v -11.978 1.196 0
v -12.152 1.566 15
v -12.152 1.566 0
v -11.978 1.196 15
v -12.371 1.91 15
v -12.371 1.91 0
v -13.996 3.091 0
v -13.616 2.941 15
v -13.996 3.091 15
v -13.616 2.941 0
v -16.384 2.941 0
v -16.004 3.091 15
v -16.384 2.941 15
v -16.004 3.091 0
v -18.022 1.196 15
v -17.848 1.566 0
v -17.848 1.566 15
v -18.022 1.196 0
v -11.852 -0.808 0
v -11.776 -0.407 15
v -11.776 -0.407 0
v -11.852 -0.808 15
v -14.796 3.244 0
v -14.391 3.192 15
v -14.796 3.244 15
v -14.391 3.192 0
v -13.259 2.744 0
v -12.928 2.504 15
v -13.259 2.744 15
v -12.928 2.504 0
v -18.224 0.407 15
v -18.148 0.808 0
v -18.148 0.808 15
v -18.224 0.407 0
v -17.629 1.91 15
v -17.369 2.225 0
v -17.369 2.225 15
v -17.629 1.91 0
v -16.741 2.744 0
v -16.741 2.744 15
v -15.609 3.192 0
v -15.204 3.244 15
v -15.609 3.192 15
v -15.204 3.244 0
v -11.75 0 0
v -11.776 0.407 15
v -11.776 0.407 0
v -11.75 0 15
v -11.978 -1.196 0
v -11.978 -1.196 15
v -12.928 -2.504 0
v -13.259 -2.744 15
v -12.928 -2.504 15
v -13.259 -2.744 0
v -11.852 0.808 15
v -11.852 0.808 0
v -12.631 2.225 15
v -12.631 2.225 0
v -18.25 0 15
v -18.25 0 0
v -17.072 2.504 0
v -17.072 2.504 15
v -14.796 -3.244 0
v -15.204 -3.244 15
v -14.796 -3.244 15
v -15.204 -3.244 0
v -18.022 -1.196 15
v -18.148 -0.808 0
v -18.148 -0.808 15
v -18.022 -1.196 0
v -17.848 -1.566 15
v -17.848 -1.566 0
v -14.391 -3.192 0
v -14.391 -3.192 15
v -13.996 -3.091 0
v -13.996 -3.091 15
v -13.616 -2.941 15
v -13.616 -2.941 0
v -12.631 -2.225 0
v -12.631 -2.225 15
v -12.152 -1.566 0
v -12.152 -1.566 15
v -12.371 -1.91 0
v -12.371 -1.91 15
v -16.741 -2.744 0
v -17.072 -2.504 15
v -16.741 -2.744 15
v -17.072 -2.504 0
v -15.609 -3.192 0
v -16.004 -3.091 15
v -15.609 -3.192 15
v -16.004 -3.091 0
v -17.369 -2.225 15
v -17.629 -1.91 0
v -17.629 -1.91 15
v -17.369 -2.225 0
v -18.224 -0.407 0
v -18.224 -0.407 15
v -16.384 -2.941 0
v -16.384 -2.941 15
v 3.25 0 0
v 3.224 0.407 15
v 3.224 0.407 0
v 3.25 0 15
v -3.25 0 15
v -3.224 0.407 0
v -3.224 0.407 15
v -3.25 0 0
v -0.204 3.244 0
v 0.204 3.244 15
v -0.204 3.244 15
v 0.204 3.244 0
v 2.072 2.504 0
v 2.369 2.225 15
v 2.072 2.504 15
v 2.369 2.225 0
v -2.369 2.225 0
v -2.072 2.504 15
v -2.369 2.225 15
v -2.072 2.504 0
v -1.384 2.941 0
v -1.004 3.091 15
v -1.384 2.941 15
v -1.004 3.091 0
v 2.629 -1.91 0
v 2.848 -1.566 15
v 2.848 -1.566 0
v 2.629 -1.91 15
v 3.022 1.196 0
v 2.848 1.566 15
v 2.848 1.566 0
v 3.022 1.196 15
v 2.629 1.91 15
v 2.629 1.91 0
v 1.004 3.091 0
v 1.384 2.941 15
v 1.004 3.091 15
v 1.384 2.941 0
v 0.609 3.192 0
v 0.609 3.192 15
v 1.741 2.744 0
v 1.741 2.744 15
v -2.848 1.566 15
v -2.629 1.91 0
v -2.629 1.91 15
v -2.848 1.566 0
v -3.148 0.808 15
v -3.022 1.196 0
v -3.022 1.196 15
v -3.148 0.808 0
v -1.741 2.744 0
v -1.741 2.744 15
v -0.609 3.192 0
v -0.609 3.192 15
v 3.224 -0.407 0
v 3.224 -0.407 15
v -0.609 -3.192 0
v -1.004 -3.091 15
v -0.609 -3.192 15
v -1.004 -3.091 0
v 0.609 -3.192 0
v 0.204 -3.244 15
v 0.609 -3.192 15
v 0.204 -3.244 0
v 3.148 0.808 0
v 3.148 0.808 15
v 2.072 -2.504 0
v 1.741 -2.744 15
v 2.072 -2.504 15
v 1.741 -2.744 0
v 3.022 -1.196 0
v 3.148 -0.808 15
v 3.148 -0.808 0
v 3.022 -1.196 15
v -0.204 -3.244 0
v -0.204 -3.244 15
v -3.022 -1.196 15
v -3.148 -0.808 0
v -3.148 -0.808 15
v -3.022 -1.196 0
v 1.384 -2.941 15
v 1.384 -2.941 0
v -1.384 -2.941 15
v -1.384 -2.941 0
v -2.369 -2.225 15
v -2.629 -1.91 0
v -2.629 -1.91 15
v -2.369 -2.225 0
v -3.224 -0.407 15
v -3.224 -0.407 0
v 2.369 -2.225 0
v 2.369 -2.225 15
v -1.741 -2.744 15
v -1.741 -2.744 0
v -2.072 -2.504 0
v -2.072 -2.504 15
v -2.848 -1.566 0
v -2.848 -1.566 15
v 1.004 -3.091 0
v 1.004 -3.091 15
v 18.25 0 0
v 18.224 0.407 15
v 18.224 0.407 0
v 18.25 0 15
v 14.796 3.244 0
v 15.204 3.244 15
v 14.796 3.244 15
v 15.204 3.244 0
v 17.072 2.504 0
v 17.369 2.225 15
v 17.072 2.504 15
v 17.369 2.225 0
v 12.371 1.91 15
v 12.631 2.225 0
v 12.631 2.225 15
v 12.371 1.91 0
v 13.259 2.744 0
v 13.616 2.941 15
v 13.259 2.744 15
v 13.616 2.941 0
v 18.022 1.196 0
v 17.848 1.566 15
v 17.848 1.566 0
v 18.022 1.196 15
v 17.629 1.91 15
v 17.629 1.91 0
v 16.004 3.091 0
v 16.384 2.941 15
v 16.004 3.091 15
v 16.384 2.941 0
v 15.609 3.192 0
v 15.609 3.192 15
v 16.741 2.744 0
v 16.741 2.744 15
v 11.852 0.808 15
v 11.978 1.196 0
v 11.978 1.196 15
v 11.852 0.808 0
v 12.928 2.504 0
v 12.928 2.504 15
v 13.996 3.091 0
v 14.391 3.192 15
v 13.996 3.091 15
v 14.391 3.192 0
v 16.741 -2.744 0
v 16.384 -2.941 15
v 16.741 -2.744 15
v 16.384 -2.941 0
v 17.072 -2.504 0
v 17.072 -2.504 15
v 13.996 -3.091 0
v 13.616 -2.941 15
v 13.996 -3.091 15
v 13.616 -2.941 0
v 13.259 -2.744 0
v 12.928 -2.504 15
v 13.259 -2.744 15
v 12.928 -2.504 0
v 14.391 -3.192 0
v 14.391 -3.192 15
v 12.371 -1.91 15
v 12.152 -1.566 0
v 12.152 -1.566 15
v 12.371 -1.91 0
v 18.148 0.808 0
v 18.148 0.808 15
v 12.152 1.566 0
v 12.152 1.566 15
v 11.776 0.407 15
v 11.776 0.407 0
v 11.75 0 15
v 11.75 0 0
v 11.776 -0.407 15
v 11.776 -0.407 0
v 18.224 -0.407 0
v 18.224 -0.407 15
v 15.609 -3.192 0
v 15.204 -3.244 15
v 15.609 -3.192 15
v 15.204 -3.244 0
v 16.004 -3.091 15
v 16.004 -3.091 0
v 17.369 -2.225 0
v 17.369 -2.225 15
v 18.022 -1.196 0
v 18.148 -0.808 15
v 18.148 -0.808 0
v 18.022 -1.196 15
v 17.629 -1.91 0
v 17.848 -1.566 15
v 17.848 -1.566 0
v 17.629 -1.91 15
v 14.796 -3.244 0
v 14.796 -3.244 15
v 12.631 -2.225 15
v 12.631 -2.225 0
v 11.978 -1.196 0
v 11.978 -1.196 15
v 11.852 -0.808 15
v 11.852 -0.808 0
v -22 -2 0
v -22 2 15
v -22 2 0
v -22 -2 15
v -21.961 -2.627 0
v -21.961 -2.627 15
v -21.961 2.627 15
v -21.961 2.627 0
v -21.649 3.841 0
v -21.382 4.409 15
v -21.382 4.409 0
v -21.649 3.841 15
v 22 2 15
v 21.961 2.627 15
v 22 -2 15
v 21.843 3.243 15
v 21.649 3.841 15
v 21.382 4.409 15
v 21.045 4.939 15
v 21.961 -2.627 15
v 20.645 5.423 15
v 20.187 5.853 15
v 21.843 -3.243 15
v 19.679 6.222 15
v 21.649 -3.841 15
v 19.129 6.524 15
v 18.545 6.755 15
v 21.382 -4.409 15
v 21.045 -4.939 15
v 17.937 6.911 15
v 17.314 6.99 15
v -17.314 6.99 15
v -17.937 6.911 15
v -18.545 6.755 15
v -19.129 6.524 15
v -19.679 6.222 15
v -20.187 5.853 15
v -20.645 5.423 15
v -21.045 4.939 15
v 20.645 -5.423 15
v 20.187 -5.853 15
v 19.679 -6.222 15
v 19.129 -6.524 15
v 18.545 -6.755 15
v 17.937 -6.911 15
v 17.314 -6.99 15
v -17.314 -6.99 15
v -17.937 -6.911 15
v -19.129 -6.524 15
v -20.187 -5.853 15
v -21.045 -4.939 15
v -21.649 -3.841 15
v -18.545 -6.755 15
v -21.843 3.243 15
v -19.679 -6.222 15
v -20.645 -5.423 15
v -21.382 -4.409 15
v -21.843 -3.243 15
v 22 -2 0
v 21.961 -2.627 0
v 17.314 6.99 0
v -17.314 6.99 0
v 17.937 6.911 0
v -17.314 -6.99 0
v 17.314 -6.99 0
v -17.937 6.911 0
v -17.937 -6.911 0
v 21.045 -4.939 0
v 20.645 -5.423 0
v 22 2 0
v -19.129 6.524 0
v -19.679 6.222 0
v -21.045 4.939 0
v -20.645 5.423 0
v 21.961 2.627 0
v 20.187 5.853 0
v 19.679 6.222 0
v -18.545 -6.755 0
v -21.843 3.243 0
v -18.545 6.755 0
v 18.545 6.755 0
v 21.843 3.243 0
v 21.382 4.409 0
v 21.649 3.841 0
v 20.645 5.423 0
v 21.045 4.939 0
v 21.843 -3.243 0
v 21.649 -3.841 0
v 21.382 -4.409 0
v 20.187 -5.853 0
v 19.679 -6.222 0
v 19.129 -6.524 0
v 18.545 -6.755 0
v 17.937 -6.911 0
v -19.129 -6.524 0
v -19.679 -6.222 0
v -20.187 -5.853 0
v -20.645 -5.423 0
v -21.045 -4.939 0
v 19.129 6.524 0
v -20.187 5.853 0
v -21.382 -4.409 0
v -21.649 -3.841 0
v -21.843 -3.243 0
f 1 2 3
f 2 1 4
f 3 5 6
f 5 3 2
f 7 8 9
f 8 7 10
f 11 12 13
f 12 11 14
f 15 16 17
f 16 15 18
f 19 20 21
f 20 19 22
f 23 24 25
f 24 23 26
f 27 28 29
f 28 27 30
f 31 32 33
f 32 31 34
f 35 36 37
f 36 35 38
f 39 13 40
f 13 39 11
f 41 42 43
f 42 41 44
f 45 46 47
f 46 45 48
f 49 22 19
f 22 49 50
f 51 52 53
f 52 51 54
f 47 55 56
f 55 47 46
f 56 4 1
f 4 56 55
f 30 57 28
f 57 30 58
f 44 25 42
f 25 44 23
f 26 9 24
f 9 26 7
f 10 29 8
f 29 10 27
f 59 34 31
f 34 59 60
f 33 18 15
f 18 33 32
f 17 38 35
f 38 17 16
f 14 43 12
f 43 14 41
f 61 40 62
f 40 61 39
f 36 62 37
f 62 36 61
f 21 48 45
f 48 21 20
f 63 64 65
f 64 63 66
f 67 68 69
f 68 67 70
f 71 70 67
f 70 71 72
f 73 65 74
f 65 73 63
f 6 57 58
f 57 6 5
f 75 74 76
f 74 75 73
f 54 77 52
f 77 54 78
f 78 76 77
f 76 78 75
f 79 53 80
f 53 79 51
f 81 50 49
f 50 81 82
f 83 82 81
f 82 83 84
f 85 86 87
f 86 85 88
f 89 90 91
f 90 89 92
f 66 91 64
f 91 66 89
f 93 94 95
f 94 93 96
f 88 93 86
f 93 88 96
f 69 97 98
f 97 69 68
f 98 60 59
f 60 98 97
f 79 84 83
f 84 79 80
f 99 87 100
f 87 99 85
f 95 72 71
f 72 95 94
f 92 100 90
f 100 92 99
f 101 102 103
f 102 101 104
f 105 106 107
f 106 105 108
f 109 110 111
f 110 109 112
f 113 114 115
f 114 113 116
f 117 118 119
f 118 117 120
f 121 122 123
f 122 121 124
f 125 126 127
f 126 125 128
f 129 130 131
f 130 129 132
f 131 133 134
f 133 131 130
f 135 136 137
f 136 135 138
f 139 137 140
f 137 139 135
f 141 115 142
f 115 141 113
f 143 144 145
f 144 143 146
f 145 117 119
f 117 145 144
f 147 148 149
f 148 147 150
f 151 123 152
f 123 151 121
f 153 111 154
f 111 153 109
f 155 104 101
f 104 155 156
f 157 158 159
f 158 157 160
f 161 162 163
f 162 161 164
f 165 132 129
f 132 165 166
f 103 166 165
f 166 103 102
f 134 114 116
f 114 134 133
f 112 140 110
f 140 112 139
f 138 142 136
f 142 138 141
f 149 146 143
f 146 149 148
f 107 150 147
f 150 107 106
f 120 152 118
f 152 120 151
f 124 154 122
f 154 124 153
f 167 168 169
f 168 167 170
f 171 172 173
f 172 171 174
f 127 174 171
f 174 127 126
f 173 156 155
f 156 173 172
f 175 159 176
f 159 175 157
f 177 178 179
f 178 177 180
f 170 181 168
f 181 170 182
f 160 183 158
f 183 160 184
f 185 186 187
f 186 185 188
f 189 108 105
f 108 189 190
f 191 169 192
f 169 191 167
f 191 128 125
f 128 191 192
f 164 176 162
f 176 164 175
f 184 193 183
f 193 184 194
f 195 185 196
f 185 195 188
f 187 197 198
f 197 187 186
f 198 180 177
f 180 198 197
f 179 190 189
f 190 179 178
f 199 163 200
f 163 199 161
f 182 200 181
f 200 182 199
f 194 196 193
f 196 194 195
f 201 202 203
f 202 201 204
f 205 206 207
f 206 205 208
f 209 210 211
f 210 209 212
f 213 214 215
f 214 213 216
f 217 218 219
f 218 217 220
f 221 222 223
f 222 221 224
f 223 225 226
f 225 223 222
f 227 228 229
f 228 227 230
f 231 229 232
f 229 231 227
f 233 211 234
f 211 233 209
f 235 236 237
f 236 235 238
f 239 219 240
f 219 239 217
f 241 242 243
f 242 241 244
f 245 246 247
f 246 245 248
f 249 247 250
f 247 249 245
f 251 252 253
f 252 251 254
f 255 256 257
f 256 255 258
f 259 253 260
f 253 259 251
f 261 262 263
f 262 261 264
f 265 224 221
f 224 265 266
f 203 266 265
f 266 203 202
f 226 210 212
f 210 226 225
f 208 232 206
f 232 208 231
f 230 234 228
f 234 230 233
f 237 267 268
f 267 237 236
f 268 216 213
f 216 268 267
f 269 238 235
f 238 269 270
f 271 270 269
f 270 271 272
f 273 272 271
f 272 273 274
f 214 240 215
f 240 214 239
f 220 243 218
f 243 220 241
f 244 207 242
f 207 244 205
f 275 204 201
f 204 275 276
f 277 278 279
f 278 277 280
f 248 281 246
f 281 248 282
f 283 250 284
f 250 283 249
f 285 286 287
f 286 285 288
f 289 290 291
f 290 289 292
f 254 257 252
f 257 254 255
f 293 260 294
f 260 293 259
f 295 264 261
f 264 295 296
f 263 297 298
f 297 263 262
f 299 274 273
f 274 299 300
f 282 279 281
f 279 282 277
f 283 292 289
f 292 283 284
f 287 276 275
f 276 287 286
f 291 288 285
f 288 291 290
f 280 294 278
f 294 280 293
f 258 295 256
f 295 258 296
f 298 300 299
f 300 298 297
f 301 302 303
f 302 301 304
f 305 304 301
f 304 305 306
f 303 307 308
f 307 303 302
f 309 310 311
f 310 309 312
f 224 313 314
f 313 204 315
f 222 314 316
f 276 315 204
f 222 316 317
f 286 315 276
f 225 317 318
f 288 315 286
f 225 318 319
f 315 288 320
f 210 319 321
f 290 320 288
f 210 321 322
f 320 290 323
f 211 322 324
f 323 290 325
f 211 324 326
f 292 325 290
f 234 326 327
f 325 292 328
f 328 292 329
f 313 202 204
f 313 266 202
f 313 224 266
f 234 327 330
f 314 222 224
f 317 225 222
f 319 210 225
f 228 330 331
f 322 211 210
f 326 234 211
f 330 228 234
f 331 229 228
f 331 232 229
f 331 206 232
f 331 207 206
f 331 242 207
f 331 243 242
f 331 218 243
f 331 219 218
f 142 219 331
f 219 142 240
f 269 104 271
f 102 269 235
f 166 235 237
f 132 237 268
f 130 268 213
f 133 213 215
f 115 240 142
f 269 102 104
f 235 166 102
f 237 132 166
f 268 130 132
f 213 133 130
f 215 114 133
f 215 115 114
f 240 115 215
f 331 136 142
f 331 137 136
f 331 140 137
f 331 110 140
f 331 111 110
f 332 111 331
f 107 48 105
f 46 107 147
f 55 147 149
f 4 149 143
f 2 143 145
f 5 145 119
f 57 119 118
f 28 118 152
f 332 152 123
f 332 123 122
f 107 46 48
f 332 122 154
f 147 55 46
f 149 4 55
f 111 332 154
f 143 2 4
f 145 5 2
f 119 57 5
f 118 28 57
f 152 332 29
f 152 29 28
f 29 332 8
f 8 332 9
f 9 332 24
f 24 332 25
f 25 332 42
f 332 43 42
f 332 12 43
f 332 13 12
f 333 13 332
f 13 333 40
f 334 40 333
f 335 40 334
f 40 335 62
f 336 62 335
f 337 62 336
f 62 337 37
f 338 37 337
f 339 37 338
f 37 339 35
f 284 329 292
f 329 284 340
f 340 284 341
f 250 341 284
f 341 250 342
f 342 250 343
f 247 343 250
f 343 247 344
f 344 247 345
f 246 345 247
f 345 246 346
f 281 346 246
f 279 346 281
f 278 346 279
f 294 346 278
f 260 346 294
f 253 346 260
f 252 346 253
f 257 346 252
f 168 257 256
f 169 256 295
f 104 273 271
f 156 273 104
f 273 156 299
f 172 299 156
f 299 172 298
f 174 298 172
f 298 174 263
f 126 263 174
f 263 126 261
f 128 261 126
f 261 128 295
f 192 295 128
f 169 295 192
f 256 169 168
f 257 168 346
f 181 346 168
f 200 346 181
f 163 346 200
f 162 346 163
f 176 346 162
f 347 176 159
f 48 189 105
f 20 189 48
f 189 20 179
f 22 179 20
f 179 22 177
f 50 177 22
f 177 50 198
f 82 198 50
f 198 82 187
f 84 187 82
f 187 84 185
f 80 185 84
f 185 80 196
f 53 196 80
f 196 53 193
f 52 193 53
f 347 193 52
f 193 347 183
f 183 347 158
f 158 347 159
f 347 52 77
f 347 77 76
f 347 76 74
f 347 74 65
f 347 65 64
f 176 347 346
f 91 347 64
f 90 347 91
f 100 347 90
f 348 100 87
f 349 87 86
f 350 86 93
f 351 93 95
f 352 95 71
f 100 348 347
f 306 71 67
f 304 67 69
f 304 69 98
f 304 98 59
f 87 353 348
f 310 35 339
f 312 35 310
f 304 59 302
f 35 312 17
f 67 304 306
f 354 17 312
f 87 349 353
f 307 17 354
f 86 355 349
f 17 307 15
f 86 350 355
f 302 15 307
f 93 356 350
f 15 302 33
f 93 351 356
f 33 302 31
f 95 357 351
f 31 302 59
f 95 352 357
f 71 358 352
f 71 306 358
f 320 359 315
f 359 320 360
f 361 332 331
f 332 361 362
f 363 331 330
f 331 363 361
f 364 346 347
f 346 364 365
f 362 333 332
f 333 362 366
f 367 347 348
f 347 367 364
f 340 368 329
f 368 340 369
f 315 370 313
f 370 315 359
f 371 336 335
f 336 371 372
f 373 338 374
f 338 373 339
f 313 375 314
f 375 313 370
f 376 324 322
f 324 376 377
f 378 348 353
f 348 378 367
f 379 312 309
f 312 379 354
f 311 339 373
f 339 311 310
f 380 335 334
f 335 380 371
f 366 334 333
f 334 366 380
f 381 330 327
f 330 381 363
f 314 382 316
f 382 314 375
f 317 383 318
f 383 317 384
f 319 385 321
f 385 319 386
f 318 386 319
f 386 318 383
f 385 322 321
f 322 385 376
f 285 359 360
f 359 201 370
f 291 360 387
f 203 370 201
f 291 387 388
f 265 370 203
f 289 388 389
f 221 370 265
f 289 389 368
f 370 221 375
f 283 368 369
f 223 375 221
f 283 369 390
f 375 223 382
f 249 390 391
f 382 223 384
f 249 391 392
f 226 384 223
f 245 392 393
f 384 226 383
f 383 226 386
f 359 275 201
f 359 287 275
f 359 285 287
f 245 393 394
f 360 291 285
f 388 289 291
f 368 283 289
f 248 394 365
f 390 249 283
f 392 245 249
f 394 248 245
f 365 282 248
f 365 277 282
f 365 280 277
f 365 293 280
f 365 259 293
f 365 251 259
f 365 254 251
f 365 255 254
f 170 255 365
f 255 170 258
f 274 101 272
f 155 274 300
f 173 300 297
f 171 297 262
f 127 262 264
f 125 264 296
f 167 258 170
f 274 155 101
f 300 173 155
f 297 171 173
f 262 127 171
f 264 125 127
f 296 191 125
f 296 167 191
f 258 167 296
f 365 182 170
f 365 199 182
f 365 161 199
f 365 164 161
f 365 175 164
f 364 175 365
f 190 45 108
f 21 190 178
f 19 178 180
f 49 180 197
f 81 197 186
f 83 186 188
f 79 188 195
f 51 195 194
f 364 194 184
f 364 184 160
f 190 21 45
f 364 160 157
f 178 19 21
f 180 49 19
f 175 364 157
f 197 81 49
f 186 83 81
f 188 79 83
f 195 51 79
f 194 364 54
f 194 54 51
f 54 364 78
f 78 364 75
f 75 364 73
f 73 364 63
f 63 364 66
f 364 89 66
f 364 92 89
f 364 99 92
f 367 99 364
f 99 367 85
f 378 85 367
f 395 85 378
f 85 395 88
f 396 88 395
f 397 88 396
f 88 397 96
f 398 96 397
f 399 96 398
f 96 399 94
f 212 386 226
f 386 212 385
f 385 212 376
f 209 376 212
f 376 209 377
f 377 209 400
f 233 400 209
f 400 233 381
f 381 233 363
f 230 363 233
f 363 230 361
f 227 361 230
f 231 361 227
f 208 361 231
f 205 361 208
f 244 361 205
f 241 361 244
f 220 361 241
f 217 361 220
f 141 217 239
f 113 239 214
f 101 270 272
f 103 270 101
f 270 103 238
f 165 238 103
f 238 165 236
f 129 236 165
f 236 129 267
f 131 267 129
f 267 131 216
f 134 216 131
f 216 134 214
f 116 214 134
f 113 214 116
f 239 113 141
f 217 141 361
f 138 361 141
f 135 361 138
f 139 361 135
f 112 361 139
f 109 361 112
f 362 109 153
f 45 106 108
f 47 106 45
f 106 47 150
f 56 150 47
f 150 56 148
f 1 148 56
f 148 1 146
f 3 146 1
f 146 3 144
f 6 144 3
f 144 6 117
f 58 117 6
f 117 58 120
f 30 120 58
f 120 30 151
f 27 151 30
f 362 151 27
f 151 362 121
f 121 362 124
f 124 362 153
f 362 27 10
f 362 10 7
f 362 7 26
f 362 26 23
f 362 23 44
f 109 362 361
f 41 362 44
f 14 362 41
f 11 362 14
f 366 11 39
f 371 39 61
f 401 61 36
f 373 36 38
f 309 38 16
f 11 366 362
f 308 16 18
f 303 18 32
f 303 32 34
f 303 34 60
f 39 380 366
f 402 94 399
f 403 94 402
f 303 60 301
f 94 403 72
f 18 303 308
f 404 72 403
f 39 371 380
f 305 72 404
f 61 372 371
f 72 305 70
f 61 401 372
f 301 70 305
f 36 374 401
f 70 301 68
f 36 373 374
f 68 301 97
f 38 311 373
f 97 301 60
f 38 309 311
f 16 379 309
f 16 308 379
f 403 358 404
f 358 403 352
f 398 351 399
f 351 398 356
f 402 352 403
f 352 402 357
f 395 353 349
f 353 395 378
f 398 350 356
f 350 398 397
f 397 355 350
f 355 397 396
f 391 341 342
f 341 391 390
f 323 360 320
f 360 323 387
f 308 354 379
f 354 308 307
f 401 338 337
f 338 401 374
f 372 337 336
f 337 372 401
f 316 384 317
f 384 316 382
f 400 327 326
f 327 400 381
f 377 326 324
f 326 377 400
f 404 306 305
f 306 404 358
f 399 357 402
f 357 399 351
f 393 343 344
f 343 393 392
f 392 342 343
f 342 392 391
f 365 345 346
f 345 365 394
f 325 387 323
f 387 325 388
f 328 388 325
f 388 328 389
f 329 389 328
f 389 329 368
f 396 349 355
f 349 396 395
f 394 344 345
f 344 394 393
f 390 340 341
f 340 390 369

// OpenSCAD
$fn = 50;


difference() {
	union() {
		hull() {
			translate(v = [-17.0000000000, 2.0000000000, 0]) {
				cylinder(h = 15, r = 5);
			}
			translate(v = [17.0000000000, 2.0000000000, 0]) {
				cylinder(h = 15, r = 5);
			}
			translate(v = [-17.0000000000, -2.0000000000, 0]) {
				cylinder(h = 15, r = 5);
			}
			translate(v = [17.0000000000, -2.0000000000, 0]) {
				cylinder(h = 15, r = 5);
			}
		}
	}
	union() {
		translate(v = [-15.0000000000, 0.0000000000, 0]) {
			translate(v = [0, 0, -100]) {
				cylinder(h = 200, r = 3.2500000000);
			}
		}
		translate(v = [0, 0, -100]) {
			cylinder(h = 200, r = 3.2500000000);
		}
		translate(v = [15.0000000000, 0.0000000000, 0]) {
			translate(v = [0, 0, -100]) {
				cylinder(h = 200, r = 3.2500000000);
			}
		}
	}
}
